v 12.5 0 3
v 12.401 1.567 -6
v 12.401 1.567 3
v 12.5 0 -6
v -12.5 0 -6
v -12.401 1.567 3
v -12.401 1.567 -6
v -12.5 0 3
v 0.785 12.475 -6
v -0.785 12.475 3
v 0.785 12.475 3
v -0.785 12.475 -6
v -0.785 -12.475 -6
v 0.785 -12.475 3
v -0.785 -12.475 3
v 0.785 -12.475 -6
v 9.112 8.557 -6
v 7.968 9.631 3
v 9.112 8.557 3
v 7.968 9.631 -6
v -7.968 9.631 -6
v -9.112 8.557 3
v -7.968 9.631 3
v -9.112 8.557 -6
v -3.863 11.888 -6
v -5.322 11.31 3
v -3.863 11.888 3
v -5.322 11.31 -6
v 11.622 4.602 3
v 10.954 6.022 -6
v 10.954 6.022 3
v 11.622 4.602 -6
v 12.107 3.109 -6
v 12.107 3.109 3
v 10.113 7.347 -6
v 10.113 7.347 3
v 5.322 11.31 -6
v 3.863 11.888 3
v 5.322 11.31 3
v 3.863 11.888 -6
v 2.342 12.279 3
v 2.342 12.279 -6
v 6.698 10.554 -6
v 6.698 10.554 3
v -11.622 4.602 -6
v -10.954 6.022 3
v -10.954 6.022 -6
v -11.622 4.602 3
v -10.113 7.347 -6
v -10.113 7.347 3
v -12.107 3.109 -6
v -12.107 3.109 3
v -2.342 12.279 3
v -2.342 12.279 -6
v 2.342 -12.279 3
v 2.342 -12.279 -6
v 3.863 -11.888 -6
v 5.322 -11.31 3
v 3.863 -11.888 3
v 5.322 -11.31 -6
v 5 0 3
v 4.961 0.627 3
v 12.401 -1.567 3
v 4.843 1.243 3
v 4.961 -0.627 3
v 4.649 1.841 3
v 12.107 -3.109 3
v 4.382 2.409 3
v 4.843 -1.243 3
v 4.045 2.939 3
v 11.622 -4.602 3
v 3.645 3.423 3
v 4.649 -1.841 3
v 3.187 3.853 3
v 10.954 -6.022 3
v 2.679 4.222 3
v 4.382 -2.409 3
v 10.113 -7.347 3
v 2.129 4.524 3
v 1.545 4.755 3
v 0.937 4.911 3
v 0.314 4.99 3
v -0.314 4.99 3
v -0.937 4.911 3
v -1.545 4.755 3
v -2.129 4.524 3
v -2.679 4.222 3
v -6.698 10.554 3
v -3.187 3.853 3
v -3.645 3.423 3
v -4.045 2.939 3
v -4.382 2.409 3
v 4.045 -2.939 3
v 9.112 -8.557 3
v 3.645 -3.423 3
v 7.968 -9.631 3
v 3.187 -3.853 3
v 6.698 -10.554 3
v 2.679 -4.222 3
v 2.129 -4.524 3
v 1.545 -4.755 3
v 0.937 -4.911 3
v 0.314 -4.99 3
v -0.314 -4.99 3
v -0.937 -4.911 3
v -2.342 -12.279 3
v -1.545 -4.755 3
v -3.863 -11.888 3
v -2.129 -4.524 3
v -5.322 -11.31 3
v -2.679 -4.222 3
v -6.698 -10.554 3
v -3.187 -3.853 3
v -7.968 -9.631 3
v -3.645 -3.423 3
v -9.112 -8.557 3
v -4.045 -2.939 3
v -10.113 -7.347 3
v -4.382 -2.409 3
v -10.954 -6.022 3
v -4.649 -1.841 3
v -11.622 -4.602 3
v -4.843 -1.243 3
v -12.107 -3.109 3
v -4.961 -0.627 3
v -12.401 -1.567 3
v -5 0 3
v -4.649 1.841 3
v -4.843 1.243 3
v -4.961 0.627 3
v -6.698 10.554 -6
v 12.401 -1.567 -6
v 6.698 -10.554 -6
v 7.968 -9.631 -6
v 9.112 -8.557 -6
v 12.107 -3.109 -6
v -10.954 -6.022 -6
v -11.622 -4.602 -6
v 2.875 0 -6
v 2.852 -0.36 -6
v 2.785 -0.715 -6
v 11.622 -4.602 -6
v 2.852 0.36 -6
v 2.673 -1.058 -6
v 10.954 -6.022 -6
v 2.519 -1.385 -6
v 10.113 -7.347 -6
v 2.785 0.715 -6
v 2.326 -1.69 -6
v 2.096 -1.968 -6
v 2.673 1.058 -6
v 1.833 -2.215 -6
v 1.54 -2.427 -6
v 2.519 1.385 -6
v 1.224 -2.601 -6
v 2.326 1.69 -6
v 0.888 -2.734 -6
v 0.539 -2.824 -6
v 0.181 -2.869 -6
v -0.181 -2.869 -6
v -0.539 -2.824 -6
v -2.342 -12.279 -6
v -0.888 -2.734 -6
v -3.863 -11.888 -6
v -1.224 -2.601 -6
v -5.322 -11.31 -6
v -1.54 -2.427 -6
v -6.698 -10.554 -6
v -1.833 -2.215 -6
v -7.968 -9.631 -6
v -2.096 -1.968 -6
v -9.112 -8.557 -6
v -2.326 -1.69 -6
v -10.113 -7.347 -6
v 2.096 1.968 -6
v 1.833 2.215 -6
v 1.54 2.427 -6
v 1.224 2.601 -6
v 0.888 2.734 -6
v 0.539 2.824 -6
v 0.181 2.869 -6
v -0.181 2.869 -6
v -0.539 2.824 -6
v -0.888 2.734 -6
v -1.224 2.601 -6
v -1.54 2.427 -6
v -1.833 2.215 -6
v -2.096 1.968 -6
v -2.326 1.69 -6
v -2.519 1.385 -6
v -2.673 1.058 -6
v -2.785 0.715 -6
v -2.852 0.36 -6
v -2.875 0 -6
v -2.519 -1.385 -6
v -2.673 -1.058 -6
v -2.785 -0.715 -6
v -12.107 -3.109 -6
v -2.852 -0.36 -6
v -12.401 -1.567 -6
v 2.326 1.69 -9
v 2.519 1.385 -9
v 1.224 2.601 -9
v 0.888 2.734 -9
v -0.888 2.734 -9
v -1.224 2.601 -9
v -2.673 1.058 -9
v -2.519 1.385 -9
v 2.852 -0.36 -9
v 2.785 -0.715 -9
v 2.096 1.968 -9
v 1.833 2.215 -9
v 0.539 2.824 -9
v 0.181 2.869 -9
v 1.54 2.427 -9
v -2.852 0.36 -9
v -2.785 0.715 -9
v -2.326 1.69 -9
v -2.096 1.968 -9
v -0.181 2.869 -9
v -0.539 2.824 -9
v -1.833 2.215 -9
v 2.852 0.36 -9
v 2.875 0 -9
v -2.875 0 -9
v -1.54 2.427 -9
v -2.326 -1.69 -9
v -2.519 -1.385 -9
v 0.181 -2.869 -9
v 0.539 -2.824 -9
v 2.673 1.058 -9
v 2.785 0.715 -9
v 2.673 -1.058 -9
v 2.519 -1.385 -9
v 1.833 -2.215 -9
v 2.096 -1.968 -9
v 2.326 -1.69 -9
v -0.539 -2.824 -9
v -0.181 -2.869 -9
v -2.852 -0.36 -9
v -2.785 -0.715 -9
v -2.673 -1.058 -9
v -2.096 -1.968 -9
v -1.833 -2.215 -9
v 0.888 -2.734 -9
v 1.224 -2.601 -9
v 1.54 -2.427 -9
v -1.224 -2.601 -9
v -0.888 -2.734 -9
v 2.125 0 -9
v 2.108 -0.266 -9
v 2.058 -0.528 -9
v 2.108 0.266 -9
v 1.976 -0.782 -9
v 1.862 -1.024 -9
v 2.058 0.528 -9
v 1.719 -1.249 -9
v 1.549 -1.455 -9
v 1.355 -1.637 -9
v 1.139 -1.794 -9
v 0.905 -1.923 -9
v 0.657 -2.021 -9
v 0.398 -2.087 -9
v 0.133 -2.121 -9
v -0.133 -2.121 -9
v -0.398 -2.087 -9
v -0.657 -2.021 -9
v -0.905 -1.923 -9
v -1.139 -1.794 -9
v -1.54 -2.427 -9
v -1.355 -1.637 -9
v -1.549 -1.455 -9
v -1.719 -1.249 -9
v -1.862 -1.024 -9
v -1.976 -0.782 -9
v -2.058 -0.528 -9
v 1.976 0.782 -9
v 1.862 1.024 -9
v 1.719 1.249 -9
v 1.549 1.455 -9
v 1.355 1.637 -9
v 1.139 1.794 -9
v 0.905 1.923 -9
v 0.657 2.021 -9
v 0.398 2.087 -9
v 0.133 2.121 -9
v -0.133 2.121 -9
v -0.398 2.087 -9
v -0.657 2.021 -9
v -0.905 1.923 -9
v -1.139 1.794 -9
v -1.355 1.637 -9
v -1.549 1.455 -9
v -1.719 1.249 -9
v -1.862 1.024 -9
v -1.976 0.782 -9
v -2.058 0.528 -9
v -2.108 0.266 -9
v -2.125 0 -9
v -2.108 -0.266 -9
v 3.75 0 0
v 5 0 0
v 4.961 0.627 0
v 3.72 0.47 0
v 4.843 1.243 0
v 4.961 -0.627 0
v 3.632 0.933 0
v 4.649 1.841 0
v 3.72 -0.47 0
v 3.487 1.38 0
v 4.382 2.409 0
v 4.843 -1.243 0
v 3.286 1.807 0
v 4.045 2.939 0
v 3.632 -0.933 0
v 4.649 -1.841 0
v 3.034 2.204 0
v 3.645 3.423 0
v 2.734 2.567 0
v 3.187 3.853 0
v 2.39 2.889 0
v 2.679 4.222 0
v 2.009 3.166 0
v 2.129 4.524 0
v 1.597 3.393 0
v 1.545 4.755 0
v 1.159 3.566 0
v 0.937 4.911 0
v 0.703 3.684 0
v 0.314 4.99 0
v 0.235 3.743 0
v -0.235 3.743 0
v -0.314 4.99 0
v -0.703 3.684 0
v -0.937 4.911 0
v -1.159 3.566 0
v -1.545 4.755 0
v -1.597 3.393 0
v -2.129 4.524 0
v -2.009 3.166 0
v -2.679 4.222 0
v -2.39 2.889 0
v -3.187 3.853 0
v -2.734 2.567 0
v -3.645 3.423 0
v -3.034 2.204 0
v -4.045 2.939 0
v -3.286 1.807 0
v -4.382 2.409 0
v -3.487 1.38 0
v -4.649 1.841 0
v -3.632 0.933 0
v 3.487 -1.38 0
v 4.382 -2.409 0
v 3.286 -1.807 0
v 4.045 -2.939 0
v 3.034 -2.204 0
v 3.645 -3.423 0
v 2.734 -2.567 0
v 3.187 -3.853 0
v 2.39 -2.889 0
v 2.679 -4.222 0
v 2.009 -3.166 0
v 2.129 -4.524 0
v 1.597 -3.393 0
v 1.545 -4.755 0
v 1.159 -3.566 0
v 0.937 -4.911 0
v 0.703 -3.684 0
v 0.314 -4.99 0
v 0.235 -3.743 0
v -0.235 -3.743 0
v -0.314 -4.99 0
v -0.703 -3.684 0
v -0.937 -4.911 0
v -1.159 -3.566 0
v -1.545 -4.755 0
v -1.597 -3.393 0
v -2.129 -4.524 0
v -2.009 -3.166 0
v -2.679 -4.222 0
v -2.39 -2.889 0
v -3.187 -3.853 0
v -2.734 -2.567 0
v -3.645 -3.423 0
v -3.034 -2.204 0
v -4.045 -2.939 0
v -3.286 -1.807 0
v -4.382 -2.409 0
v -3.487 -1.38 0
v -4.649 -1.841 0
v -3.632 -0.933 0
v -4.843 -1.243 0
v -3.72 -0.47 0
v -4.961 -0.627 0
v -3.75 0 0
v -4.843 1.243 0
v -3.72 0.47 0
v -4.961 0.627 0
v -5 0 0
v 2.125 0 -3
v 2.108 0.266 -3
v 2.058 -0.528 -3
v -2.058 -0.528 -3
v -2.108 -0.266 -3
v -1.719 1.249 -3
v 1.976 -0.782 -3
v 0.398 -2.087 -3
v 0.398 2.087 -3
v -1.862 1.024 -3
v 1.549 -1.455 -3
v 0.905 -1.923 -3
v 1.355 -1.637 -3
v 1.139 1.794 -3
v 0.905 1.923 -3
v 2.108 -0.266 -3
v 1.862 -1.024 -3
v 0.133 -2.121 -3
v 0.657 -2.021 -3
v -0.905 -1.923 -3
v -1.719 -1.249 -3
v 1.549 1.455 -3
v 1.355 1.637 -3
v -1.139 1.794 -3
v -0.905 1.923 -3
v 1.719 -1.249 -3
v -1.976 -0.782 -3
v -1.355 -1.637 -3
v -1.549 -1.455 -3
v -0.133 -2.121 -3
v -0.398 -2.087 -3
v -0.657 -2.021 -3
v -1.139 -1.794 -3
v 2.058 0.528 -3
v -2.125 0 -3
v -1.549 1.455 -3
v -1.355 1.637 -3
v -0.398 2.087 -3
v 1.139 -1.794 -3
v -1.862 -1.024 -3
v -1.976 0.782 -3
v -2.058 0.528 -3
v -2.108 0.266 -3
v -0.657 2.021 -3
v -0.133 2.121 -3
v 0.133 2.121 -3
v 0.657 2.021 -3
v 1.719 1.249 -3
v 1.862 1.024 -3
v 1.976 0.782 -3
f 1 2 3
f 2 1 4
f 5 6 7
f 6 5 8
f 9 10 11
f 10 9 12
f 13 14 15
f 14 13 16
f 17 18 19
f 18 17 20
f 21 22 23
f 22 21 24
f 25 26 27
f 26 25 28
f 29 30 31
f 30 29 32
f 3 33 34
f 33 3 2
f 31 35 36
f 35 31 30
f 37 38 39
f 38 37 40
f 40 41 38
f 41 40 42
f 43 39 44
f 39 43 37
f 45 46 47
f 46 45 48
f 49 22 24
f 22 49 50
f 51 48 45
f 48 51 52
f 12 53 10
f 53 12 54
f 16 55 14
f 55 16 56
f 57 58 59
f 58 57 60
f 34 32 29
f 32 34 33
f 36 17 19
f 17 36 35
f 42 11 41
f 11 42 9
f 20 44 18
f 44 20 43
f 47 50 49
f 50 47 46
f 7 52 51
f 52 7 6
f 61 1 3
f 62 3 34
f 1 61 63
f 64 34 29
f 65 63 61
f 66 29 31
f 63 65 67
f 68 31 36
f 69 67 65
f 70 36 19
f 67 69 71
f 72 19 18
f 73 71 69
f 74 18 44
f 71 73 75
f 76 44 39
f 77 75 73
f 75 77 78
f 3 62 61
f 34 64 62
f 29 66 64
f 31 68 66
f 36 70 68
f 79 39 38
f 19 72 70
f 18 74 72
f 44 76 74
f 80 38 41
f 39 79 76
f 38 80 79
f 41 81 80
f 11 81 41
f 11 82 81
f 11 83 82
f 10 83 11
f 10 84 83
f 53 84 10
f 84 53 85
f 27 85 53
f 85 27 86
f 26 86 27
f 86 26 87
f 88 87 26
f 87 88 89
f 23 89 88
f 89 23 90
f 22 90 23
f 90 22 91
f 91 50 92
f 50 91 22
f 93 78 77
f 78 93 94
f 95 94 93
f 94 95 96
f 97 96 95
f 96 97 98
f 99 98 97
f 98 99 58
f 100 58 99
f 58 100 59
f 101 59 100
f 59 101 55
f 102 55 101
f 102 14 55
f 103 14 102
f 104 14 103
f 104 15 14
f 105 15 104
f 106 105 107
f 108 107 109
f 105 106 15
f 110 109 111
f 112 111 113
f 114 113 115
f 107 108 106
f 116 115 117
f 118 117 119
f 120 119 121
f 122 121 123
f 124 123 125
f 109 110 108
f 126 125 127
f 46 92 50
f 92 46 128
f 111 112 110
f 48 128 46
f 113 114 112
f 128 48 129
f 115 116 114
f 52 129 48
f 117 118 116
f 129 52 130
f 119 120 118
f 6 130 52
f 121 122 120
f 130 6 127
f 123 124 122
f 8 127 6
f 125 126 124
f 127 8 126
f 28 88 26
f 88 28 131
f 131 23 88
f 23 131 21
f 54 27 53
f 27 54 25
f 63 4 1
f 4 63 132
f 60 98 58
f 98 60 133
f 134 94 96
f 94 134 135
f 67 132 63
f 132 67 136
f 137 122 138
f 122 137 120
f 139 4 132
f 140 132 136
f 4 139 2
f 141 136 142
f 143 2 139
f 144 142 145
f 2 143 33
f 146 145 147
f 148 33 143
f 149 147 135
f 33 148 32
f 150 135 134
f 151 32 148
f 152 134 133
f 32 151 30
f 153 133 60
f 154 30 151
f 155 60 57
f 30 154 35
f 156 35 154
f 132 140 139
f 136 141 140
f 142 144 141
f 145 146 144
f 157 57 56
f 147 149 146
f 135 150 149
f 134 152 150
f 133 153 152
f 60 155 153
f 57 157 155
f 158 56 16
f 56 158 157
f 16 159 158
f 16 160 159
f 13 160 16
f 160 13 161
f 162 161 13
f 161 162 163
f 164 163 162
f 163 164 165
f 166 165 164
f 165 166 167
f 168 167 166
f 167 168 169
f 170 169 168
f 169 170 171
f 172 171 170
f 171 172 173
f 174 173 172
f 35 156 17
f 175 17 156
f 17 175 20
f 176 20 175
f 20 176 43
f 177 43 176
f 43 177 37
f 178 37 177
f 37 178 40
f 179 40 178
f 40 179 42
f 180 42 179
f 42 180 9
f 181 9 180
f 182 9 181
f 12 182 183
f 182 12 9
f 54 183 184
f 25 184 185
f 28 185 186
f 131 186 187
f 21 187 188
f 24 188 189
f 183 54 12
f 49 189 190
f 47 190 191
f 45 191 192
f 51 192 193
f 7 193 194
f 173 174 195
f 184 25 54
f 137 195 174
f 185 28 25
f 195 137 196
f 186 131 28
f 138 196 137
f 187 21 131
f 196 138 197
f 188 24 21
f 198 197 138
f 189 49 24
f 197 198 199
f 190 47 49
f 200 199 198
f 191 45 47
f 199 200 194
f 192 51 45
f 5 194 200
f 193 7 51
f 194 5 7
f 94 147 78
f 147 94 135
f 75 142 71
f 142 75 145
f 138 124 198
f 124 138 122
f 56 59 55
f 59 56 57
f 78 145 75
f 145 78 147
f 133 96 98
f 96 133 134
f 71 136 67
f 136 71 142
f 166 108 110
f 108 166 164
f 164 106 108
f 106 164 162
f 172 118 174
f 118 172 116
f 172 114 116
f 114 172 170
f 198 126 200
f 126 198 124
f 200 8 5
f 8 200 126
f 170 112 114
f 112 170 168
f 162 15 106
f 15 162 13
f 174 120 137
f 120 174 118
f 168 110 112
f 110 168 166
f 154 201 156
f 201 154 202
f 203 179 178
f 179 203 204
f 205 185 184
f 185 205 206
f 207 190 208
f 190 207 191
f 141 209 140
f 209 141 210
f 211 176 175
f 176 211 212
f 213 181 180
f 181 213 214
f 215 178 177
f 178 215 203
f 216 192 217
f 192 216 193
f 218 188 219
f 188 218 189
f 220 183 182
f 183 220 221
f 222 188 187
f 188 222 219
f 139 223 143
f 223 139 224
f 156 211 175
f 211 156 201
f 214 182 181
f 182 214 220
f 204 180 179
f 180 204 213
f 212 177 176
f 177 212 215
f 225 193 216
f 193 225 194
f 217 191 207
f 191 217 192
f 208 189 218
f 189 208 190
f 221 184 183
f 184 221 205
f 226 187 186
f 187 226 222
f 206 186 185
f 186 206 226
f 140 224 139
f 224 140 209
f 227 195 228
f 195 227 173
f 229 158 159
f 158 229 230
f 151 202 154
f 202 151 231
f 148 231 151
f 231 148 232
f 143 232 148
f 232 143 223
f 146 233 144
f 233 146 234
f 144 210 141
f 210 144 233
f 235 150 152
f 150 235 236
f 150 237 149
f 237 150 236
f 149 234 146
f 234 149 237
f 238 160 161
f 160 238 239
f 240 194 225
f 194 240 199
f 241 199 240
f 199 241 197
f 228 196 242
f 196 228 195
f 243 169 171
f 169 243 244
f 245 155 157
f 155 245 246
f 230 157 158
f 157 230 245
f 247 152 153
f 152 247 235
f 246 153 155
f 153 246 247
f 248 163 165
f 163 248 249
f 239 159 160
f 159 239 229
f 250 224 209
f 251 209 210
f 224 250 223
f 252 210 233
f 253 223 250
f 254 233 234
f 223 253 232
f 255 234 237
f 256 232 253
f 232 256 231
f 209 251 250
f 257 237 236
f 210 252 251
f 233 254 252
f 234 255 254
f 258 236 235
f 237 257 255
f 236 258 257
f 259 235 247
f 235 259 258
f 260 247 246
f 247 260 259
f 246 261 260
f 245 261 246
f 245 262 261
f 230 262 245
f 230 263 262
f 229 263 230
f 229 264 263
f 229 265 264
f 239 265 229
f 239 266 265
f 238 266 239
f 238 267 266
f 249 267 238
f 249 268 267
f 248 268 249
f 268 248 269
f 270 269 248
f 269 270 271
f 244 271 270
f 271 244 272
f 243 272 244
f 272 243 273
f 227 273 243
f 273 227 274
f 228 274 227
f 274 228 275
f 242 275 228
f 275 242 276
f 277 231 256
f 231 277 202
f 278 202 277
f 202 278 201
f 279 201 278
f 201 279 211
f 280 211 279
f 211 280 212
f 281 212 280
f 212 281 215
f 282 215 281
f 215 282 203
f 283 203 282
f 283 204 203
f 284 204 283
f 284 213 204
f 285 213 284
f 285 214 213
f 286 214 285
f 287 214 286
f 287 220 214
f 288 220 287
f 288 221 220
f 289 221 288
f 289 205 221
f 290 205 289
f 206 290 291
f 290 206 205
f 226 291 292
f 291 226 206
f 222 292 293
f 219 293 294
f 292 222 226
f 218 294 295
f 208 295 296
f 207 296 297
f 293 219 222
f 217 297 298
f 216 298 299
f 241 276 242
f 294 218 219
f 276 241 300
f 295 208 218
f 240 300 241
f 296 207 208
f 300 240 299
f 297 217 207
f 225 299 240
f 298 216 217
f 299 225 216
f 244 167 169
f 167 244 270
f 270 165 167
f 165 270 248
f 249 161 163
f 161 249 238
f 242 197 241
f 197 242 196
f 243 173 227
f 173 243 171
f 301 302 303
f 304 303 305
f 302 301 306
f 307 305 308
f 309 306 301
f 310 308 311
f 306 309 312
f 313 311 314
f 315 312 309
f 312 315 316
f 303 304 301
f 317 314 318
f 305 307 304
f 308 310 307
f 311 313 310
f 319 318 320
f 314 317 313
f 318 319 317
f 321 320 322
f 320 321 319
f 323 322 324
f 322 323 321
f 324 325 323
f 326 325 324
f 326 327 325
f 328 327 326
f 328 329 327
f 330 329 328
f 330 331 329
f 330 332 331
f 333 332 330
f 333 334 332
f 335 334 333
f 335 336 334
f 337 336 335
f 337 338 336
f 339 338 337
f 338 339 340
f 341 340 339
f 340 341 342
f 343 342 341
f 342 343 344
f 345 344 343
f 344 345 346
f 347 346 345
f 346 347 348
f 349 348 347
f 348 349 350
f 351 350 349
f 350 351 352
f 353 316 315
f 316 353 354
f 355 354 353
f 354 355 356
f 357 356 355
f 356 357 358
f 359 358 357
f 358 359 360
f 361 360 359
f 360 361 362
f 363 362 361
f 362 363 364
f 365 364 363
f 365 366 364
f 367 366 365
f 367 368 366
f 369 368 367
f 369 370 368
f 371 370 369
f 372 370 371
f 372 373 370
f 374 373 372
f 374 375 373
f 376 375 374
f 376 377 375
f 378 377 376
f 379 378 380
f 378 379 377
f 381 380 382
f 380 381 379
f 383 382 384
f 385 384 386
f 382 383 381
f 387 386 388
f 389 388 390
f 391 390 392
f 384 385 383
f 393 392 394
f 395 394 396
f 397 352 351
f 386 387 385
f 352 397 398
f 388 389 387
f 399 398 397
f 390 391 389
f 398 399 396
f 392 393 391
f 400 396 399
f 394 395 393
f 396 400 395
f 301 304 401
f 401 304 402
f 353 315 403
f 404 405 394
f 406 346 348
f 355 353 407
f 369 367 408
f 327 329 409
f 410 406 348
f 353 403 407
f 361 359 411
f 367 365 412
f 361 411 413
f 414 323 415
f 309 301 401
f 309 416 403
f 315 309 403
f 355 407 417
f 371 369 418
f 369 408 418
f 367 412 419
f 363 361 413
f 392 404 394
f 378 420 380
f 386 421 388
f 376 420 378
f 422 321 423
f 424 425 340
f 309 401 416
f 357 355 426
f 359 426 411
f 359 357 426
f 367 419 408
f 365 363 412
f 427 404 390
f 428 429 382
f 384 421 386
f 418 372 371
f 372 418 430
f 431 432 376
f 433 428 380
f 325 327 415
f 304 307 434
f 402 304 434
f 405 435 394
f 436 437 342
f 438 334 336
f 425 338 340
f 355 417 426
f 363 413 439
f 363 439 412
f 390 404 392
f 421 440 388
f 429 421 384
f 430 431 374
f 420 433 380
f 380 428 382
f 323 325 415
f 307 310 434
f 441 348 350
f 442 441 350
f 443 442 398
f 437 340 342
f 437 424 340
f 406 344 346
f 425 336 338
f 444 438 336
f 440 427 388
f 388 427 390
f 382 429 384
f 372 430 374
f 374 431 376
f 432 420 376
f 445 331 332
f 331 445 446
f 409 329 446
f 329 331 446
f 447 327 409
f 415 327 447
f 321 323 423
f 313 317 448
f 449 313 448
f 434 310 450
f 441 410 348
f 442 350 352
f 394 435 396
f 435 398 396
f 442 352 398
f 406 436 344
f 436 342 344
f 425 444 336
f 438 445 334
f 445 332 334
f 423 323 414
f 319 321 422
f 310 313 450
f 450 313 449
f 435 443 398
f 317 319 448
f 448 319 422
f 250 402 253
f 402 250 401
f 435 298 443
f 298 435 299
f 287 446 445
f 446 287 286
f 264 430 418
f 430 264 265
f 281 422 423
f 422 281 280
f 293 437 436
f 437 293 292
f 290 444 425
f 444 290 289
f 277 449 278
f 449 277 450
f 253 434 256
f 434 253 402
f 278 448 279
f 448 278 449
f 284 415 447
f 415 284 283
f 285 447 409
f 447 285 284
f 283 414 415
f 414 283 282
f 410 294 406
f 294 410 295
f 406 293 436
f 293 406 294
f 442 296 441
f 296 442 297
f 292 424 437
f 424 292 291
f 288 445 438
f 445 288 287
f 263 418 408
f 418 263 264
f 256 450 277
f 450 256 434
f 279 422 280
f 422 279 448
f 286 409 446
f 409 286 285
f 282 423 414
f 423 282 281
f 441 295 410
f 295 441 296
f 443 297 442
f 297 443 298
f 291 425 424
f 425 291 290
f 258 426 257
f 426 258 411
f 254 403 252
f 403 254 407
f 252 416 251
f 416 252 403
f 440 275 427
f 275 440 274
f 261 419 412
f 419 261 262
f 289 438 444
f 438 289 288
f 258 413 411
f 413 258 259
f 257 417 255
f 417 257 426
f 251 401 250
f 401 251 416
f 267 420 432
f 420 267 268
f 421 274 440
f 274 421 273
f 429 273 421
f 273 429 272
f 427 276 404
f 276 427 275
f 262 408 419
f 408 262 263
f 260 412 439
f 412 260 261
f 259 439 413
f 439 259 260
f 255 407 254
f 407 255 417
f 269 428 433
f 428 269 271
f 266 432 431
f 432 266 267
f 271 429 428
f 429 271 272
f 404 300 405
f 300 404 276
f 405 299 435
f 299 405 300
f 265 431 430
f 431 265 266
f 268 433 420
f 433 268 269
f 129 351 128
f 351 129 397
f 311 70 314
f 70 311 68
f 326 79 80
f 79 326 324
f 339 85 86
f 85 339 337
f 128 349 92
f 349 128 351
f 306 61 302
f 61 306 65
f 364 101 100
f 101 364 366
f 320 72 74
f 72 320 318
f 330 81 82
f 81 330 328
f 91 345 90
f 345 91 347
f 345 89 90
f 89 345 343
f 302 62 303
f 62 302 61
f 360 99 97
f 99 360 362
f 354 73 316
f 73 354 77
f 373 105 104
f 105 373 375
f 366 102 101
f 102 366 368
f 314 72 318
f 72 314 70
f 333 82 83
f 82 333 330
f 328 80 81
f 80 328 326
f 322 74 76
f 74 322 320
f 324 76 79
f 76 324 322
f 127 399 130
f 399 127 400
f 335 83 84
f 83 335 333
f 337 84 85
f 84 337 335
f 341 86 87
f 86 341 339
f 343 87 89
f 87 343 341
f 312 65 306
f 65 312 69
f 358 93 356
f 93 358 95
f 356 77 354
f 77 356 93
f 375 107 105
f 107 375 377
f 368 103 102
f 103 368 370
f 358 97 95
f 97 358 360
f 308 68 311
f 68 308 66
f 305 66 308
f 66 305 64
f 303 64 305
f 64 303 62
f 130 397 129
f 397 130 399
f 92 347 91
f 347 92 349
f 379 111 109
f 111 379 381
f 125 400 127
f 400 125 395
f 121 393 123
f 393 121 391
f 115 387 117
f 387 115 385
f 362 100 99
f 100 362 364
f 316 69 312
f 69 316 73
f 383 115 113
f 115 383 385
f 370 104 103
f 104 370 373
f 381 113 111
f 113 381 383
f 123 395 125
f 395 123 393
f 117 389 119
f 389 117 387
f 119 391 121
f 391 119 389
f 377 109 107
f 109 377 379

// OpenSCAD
$fn = 50;


difference() {
	union() {
		translate(v = [0, 0, -6.0000000000]) {
			cylinder(h = 9, r = 12.5000000000);
		}
		#translate(v = [0, 0, -9.0000000000]) {
			cylinder(h = 9, r = 2.8750000000);
		}
	}
	union() {
		translate(v = [0, 0, 0]) {
			rotate(a = [0, 0, 0]) {
				difference() {
					union() {
						translate(v = [0, 0, -9.0000000000]) {
							cylinder(h = 9, r = 2.0000000000);
						}
						translate(v = [0, 0, -3]) {
							cylinder(h = 3, r1 = 2.1250000000, r2 = 3.7500000000);
						}
						translate(v = [0, 0, -9.0000000000]) {
							cylinder(h = 9, r = 2.1250000000);
						}
						translate(v = [0, 0, -9.0000000000]) {
							cylinder(h = 9, r = 2.0000000000);
						}
					}
					union();
				}
			}
		}
		#cylinder(h = 3, r = 5.0000000000);
	}
}
